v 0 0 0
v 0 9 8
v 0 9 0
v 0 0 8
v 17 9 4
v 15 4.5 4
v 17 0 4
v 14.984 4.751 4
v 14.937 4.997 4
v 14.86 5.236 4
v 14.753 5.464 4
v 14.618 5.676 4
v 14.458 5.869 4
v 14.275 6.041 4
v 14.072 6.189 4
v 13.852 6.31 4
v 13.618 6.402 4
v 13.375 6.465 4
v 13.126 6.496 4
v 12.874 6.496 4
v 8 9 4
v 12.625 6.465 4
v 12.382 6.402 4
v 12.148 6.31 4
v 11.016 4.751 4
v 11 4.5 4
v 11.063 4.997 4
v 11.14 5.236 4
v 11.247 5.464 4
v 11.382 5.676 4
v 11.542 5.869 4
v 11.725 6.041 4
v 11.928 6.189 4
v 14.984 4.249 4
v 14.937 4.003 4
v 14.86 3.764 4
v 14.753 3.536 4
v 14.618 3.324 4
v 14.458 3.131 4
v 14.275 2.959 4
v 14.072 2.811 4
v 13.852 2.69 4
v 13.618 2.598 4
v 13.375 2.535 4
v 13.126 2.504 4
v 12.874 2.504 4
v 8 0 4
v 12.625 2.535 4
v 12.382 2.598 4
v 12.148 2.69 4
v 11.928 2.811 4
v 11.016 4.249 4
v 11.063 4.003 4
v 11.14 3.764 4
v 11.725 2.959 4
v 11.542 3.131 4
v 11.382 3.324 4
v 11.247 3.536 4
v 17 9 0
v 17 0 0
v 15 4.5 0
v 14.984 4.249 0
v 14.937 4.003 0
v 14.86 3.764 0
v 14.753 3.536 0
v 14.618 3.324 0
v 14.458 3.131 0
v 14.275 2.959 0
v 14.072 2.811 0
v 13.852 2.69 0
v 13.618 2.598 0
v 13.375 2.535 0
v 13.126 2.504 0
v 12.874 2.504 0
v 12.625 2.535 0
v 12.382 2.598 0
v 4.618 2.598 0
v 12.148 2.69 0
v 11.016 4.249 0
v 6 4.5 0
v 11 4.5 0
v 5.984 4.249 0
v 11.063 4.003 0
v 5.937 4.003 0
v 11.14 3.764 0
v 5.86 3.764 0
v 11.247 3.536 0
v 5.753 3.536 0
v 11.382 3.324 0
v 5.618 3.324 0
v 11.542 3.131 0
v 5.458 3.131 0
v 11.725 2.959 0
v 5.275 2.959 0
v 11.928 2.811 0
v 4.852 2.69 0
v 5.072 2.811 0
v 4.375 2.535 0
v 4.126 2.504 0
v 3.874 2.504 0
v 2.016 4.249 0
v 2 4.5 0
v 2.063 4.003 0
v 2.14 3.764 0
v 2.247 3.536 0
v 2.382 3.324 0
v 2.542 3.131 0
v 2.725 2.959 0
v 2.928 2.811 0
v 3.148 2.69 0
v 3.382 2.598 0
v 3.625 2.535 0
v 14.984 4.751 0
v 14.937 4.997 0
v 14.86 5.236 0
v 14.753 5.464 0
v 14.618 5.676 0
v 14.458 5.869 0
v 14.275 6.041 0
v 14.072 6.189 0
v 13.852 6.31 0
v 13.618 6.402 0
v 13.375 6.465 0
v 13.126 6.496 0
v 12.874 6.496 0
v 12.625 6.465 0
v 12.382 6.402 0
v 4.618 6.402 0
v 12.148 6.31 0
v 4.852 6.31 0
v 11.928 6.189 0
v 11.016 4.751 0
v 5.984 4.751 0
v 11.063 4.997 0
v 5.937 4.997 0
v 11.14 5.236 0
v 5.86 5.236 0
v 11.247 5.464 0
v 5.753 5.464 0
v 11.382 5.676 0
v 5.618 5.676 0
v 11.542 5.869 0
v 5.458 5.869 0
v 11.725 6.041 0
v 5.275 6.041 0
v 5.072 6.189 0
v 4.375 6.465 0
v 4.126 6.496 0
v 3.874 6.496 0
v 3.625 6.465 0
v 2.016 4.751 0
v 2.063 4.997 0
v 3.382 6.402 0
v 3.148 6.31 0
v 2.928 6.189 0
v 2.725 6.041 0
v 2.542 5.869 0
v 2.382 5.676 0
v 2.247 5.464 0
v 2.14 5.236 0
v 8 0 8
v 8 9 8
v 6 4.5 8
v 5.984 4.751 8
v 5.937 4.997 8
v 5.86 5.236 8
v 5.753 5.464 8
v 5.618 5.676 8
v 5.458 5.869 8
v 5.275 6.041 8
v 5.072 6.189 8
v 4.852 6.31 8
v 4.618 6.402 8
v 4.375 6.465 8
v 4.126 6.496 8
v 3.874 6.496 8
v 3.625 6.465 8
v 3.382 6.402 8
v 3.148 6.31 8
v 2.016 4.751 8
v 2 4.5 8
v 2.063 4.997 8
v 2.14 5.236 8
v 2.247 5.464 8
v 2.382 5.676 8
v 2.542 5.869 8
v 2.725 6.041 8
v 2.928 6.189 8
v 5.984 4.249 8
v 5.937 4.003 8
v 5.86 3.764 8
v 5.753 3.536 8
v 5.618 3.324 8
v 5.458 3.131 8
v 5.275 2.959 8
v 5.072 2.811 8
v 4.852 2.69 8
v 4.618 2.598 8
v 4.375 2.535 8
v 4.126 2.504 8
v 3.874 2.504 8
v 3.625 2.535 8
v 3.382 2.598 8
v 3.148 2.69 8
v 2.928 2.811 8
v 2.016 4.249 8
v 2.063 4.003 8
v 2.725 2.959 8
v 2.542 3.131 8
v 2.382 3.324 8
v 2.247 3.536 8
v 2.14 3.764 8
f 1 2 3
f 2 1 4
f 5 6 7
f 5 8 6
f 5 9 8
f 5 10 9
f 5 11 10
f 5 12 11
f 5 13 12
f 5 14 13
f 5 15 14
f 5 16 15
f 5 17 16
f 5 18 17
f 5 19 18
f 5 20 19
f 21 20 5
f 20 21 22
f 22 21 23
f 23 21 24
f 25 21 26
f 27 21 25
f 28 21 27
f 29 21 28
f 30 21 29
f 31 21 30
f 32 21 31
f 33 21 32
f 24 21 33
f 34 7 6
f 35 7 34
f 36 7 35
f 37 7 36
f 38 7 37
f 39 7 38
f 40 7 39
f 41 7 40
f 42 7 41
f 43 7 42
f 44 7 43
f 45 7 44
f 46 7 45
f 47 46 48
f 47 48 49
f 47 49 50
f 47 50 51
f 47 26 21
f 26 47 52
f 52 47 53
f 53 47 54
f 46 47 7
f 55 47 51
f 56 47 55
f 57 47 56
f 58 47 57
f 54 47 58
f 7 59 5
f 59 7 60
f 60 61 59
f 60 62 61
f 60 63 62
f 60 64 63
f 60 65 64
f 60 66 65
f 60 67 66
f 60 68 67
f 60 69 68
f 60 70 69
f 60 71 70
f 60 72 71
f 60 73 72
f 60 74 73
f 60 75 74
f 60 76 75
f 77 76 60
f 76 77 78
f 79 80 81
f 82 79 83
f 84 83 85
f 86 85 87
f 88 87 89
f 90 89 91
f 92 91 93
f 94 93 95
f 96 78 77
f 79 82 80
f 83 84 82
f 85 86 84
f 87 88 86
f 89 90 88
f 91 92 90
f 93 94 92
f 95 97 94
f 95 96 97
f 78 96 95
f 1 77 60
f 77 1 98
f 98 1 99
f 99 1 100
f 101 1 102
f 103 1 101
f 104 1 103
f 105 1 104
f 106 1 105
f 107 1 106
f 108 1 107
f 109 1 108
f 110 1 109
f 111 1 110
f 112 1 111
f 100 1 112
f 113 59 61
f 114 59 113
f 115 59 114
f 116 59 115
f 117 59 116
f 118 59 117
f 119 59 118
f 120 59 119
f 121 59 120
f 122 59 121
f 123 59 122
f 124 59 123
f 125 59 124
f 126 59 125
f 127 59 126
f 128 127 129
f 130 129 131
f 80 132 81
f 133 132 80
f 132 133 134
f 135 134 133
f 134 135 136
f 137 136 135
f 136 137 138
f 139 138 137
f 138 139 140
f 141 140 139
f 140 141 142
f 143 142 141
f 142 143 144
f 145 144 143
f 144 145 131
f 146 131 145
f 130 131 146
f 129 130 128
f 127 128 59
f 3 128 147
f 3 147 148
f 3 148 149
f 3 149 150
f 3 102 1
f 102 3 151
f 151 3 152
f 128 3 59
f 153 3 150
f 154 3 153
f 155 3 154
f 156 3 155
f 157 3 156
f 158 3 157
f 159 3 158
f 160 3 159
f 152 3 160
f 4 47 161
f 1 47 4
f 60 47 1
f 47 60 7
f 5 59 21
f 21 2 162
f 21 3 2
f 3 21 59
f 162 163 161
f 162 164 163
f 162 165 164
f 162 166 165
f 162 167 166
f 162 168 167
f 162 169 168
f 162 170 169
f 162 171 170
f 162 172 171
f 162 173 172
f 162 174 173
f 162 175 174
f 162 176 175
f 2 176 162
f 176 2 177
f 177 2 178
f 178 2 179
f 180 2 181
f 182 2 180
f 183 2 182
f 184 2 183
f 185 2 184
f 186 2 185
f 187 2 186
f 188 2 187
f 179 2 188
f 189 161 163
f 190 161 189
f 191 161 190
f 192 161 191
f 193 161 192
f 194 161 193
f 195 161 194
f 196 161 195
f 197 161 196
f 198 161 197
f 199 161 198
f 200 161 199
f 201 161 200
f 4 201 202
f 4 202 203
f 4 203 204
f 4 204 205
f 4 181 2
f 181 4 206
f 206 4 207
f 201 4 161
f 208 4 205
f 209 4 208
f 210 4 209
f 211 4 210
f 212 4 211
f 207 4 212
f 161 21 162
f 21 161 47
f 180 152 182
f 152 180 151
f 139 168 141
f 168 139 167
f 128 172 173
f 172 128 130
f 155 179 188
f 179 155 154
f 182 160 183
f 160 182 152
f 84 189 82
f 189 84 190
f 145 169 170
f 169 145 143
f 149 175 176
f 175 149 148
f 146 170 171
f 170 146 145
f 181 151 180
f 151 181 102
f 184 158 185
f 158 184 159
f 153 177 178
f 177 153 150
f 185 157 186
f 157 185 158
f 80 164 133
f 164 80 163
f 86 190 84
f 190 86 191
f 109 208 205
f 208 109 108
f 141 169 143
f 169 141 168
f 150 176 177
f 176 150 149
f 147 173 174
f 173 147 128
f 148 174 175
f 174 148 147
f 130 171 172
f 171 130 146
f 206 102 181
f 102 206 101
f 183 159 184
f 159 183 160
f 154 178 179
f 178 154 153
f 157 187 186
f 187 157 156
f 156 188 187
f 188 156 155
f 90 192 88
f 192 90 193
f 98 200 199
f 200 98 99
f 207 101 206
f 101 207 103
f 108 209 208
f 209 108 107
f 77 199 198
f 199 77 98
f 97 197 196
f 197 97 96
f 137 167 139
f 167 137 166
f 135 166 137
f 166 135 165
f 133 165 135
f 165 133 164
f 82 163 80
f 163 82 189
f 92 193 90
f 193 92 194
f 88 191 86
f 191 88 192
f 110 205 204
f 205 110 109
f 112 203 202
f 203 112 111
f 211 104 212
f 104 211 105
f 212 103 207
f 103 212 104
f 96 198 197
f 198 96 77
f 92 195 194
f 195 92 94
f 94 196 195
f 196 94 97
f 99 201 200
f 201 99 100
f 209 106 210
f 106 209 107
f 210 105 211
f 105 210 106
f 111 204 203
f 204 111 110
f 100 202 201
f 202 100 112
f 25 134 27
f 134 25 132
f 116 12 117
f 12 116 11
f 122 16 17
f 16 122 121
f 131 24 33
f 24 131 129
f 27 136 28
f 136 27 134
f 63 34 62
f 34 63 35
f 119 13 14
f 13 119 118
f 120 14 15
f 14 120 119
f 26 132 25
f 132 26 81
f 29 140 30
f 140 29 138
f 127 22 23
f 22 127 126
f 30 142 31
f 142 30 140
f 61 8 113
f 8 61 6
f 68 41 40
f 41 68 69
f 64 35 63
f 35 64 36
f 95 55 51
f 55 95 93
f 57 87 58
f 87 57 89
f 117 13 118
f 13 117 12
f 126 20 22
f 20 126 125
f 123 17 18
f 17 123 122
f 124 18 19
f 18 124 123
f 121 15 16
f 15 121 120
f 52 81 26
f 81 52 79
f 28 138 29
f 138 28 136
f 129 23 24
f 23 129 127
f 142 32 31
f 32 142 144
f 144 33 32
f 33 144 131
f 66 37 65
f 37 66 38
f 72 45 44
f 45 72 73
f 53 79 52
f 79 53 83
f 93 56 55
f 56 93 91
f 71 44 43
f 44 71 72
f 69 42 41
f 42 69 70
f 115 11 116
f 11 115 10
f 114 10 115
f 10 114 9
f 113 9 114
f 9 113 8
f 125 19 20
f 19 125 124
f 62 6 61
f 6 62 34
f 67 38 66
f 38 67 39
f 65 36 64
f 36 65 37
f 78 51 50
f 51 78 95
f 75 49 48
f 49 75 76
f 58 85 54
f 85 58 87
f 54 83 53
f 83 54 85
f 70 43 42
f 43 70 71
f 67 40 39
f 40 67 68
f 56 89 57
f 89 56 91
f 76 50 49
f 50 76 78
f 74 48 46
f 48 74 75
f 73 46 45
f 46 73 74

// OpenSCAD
$fn=50;

difference() {
    union() {
        cube([17,9,4]);
        cube([8,9,8]);
    }
    translate([4,4.5,0]) cylinder(8,4/2,4/2);
    translate([13,4.5,0]) cylinder(4,4/2,4/2);
}
